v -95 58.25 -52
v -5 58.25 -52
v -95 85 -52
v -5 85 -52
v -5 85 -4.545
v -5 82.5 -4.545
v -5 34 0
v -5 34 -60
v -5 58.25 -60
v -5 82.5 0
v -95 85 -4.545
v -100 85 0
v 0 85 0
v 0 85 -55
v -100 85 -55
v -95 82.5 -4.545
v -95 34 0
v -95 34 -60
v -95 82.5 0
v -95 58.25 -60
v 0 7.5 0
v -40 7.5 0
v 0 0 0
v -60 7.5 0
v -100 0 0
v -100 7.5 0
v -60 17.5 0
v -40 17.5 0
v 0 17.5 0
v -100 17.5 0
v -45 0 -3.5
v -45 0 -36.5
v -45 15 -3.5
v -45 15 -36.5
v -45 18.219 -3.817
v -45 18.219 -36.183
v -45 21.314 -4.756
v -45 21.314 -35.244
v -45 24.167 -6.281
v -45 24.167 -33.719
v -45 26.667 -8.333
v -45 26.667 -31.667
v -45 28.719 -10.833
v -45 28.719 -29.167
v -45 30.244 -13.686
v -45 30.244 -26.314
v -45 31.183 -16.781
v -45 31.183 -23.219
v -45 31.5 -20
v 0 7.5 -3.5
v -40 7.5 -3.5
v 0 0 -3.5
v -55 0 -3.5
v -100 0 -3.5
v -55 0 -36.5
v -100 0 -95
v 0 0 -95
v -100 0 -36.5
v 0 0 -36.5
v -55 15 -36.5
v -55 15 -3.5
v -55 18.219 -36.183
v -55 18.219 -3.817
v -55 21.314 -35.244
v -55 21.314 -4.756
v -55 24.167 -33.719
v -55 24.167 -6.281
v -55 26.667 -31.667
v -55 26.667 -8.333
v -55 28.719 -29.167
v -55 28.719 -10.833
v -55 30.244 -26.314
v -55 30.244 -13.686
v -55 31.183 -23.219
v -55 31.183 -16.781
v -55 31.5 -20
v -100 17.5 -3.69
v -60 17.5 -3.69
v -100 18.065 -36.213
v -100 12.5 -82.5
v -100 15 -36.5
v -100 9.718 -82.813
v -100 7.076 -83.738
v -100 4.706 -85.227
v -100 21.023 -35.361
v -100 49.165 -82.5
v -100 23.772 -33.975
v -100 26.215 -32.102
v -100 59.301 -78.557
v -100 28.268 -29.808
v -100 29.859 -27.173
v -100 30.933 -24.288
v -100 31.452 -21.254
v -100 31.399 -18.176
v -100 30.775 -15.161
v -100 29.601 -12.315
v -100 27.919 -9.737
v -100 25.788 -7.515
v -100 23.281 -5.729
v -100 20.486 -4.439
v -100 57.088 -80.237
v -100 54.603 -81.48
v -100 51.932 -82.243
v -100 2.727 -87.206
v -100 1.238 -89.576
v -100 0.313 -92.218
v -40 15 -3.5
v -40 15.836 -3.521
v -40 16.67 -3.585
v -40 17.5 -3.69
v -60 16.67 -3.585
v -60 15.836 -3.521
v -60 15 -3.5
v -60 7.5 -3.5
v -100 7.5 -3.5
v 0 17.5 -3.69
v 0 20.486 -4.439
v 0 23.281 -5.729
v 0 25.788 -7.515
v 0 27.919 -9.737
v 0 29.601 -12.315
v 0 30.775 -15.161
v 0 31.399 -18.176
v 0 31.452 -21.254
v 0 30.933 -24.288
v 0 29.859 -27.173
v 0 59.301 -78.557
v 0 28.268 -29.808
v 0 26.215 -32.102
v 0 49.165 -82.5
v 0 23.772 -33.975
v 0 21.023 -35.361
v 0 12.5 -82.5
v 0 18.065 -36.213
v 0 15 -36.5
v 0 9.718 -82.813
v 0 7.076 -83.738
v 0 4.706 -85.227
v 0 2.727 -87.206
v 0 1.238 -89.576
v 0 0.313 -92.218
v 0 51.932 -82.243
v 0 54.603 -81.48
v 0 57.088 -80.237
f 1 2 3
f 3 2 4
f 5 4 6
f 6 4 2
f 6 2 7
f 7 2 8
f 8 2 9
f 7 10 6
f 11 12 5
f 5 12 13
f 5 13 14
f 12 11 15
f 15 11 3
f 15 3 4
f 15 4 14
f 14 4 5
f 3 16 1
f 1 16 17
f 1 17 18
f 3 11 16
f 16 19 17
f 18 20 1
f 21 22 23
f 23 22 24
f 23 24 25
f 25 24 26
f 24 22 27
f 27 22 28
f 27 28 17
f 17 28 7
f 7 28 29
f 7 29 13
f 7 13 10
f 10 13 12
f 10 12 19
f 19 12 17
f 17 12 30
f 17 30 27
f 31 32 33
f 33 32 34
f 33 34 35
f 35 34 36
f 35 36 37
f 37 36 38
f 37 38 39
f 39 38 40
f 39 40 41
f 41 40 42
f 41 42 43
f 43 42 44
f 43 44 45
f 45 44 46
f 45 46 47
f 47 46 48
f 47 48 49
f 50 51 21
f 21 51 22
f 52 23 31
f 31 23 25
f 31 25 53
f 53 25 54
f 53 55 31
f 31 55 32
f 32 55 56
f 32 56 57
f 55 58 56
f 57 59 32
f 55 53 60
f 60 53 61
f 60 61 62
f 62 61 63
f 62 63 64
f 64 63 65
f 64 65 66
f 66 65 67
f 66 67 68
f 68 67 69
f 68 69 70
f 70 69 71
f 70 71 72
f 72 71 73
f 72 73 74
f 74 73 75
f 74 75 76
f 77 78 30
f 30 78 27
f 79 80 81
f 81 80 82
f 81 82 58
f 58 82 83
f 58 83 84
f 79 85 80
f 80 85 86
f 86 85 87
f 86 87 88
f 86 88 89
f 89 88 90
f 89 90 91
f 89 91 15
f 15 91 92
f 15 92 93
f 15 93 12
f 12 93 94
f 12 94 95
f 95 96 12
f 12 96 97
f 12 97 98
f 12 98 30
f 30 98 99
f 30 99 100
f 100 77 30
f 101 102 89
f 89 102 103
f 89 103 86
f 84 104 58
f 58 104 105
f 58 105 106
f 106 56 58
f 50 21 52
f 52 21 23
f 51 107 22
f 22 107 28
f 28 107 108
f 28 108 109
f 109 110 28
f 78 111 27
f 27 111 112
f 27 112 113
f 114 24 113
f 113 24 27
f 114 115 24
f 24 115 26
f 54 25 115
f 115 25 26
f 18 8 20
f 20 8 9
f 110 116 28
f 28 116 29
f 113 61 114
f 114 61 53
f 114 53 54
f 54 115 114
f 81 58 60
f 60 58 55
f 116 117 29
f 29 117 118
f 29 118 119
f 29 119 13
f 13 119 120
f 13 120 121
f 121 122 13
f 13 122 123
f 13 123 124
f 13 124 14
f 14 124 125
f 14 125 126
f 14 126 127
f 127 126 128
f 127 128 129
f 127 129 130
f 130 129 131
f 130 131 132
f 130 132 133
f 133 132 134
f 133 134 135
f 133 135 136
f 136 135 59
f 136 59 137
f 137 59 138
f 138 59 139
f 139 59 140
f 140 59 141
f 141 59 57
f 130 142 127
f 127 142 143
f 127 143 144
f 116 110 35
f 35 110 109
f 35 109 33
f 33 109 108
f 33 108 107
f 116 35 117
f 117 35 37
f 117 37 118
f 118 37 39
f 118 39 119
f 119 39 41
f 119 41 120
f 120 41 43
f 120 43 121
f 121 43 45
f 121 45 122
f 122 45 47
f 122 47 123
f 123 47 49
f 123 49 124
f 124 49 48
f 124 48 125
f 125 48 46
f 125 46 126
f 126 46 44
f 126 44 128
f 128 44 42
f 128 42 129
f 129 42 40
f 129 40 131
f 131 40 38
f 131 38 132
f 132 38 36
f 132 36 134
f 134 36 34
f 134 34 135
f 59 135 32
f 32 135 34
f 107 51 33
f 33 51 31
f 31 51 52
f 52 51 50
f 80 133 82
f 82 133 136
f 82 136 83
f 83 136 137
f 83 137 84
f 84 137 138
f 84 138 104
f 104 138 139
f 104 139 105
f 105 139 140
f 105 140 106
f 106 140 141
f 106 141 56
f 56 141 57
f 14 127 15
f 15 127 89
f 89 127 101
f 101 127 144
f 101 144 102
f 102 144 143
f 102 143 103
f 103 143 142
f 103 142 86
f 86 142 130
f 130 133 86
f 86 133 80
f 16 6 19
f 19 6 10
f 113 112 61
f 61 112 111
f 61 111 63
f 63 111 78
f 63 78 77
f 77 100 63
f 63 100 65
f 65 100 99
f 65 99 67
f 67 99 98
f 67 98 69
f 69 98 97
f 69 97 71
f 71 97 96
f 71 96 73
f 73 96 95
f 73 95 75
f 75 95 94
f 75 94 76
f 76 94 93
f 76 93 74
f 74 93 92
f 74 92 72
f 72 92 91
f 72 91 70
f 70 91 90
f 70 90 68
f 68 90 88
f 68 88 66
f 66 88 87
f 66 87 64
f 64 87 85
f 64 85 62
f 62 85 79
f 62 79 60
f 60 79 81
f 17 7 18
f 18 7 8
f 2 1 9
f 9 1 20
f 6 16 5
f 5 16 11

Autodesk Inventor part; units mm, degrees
ref_plane "YZ Plane" through (0, 0, 0) normal (1, 0, 0) x (0, 1, 0)
ref_plane "XZ Plane" through (0, 0, 0) normal (0, 1, 0) x (-1, 0, 0)
ref_plane "XY Plane" through (0, 0, 0) normal (0, 0, 1) x (1, 0, 0)
sketch "Esboço1" plane through (0, 0, 0) normal (0, 1, 0) x (-1, 0, 0)
  line L0 (0, 0) -> (100, 0)
  line L1 (100, 0) -> (100, -100)
  line L2 (100, -100) -> (0, -100)
  line L3 (0, -100) -> (0, 0)
  dimension "d0" = 100
  dimension "d1" = 100
extrude "Extrusão1" add sketch "Esboço1" along normal blind 85
sketch "Esboço2" plane through (0, 0, 0) normal (1, 0, 0) x (0, 0, -1)
  line L0 (100, 0) -> (0, 0) projected
  line L1 (0, 0) -> (20, 0)
  circle A0 centre (20, 15) radius 15
  line L2 (35, 15) -> (35, 0)
  line L3 (5, 15) -> (5, 0)
  line L4 (100, 85) -> (0, 85) projected
  line L5 (100, 0) -> (100, 85) projected
  line L6 (0, 85) -> (25, 85)
  line L7 (100, 10) -> (100, 0)
  line L8 (100, 0) -> (95, 0)
  line L9 (0, 0) -> (0, 85)
  line L10 (100, 0) -> (89.5, 0)
  line L11 (82.5, 12.5) -> (82.5, 49.1652)
  line L12 (0, 85) -> (55, 85)
  line L13 (100, 85) -> (100, 0)
  line L14 (100, 0) -> (0, 0)
  line L15 (0, 0) -> (0, 85)
  line L16 (78.5573, 59.3011) -> (55, 85)
  arc A1 (82.5, 49.1652) -> (78.5573, 59.3011) centre (67.5, 49.1652) ccw
  arc A2 (82.5, 12.5) -> (95, 0) centre (95, 12.5) ccw
  point P0 (82.5, 0)
  point P1 (82.5, 85)
  point P2 (5, 0)
  dimension "d6" = 30
  dimension "d8" = 17.5
  dimension "d11" = 15
  dimension "d12" = 12.5
extrude "Extrusão2" cut sketch "Esboço2" against normal blind 100 contours L0 A2 L11 A1 L16 L4 L5
extrude "Extrusão3" cut sketch "Esboço2" against normal blind 45 contours L0 A0 L2 | L0 L3 A0 | A0
sketch "Esboço3" plane through (-100, 0, 0) normal (-1, 0, 0) x (0, 0, 1)
  arc A0 (-5, 15) -> (-35, 15) centre (-20, 15) ccw projected
  line L0 (-20, 15) -> (-20, 0)
  line L1 (-95, 0) -> (0, 0) projected
  circle A1 centre (-20, 15) radius 15
  line L2 (-35, 15) -> (-35, -0.9881)
  line L3 (-5, 0) -> (-5, 15) projected
  line L4 (-5, 15) -> (-5, 0)
  line L5 (-35, 0) -> (-5, 0)
extrude "Extrusão4" cut sketch "Esboço3" against normal blind 45
sketch "Esboço4" plane through (-100, 0, 0) normal (0, 0, 1) x (1, 0, 0)
  line L0 (0, 0) -> (0, 12.5) projected
  line L1 (0, 12.5) -> (0, 17.5)
  line L2 (0, 49.1652) -> (0, 12.5) projected
  line L3 (0, 17.5) -> (0, 7.5)
  line L4 (0, 17.5) -> (40, 17.5)
  line L5 (45, 15) -> (45, 30) projected
  line L6 (40, 17.5) -> (40, 7.5)
  line L7 (40, 7.5) -> (0, 7.5)
  line L8 (100, 12.5) -> (100, 49.1652) projected
  line L9 (100, 17.5) -> (100, 7.5)
  line L10 (100, 7.5) -> (60, 7.5)
  line L11 (60, 7.5) -> (60, 17.5)
  line L12 (60, 17.5) -> (100, 17.5)
  line L13 (45, 30) -> (45, 34)
  line L14 (45, 34) -> (95, 34)
  line L15 (45, 34) -> (5, 34)
  line L16 (5, 34) -> (95, 34)
  line L17 (5, 34) -> (5, 82.5)
  line L18 (5, 82.5) -> (95, 82.5)
  line L19 (95, 82.5) -> (95, 34)
  line L20 (5, 34) -> (5, 61.5)
  line L21 (5, 34) -> (5, 58.25)
  line L22 (5, 58.25) -> (95, 58.25)
  line L23 (95, 58.25) -> (95, 34)
  line L24 (95, 34) -> (5, 34)
  point P0 (100, 0)
  dimension "d20" = 10
  dimension "d22" = 40
  dimension "d27" = 48.5
extrude "Extrusão5" cut sketch "Esboço4" against normal blind 10 contours L0 L1 L4 L6 L7 | L9 L10 L11 L12 L8
extrude "Extrusão6" cut sketch "Esboço4" against normal blind 52 contours L22 L17 L18 L19
extrude "Extrusão7" cut sketch "Esboço4" against normal blind 60 contours L15 L17 L22 L19 L14
sketch "Esboço5" plane through (0, 85, 0) normal (0, 1, 0) x (1, 0, 0)
  line L0 (-95, 0) -> (-95, 52) projected
  line L1 (-95, 4.5451) -> (-95, 52)
  line L2 (-5, 0) -> (-5, 52) projected
  line L3 (-95, 52) -> (-5, 52)
  line L4 (-5, 52) -> (-5, 4.5451)
  line L5 (-5, 4.5451) -> (-95, 4.5451)
  point P0 (0, 0)
extrude "Extrusão8" cut sketch "Esboço5" against normal blind 10.75
sketch "Esboço6" plane through (-100, 12.5, -82.5) normal (-1, 0, 0) x (0, 0, 1)
  arc A0 (77.2902, 5) -> (47.5, 2.5) centre (62.5, 2.5) ccw projected
  circle A1 centre (62.5, 2.5) radius 16.5
  line L0 (46, 2.5) -> (46, -12.5)
  line L1 (79, 2.5) -> (79, -12.5)
  line L2 (82.5, 5) -> (82.5, -5) projected
  line L3 (46, -12.5) -> (79, -12.5)
  line L4 (77.5, -12.5) -> (82.5, -12.5) projected
  dimension "d37" = 33
extrude "Extrusão9" cut sketch "Esboço6" against normal blind 45 contours A1 L3 | L1 L3 A1 | A1 L3 L0 picked at (60.7652, -1.3921)
sketch "Esboço7" plane through (0, 12.5, -82.5) normal (1, 0, 0) x (0, 0, -1)
  arc A0 (-46, 2.5) -> (-79, 2.5) centre (-62.5, 2.5) ccw projected
  circle A1 centre (-62.5, 2.5) radius 16.5
  line L0 (-79, -12.5) -> (-82.5, -12.5) projected
  line L1 (-79, 2.5) -> (-79, -12.5)
  line L2 (-79, -12.5) -> (-46, -12.5)
  line L3 (-46, -12.5) -> (-46, 2.5)
  dimension "d40" = 33
extrude "Extrusão10" cut sketch "Esboço7" against normal blind 45 contours A1 L2 A0 | L3 L2 A1 | A1 L2 L1
properties part number "mini sumô rascunho v2"
